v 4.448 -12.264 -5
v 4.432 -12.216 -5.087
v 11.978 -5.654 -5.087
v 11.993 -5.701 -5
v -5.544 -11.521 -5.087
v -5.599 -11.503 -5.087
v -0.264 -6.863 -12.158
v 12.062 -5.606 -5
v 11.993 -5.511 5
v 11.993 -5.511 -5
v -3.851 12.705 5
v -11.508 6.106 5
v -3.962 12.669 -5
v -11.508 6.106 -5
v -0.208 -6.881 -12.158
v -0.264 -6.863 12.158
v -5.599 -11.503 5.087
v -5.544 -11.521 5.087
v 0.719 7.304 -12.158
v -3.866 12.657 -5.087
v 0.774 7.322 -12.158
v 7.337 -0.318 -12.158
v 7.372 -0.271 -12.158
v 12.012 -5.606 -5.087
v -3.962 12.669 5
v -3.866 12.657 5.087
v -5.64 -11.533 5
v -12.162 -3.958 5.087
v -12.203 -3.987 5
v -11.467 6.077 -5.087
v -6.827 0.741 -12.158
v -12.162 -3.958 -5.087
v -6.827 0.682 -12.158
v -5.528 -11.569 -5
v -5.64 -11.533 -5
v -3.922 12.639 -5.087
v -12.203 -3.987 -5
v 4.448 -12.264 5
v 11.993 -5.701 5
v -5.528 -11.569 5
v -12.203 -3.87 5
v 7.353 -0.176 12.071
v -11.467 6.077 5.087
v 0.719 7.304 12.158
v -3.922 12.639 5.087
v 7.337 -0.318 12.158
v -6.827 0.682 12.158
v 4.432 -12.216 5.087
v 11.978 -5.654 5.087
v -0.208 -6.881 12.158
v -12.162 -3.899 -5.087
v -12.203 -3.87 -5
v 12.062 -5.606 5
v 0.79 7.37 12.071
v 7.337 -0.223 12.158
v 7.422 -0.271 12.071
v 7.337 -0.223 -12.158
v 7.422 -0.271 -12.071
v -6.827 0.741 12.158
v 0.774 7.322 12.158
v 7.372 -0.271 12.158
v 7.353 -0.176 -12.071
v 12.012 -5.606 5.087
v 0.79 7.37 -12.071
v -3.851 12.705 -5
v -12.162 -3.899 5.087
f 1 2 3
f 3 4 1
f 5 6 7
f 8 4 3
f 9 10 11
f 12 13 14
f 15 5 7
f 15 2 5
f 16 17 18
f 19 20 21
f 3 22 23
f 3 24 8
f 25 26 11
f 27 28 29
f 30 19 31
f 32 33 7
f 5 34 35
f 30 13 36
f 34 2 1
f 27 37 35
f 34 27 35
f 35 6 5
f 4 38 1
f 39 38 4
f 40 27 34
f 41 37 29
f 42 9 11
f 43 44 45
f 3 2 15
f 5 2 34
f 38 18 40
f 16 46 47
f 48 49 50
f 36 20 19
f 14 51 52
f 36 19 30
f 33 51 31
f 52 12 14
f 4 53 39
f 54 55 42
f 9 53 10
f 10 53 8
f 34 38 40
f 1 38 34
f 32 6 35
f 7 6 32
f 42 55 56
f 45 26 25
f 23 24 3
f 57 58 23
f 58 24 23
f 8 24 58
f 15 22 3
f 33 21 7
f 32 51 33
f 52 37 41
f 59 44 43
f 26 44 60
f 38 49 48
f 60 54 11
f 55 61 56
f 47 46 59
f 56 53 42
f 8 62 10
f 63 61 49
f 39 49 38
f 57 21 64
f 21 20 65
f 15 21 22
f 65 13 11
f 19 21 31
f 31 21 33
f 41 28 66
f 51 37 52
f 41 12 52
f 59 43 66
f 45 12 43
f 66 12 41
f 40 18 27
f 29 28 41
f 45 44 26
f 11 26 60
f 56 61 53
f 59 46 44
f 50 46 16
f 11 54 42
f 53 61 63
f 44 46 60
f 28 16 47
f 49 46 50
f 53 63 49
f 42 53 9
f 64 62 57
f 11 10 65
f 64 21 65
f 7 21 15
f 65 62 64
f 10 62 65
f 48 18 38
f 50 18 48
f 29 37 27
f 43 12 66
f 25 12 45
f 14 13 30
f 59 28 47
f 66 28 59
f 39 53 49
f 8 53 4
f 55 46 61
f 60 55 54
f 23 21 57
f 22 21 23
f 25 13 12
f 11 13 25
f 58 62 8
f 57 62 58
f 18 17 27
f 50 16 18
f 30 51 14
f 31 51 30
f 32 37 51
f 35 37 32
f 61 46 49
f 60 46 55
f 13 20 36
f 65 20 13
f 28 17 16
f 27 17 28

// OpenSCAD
// Auto-generated OpenSCAD file

    inner_points = 10*[[-0.022364928152955727, -0.6833428365326427, -1.2071067811865261], [0.7321659228464581, -0.027078259635412338, -1.2071067811864415], [-0.6786295050501859, 0.07118801446677113, -1.2071067811866534], [0.07590134594922775, 0.7274525913640015, -1.2071067811865688], [-0.022364928153311443, -0.6833428365325447, 1.2071067811865688], [0.7321659228461023, -0.027078259635314305, 1.2071067811866534], [-0.6786295050505418, 0.07118801446686916, 1.2071067811864415], [0.07590134594887203, 0.7274525913640996, 1.2071067811865261], [0.4416842044234921, -1.2168767178887558, -0.4999999999998886], [1.1962150554229058, -0.5606121409915255, -0.49999999999980405], [-1.142678637626842, 0.6047218958229418, -0.500000000000196], [-0.38814778662742855, 1.2609864727201718, -0.5000000000001115], [0.4416842044233449, -1.2168767178887152, 0.5000000000001115], [1.1962150554227584, -0.5606121409914849, 0.500000000000196], [-1.1426786376269895, 0.6047218958229823, 0.49999999999980405], [-0.38814778662757576, 1.2609864727202125, 0.4999999999998886], [-0.5558988095092017, -1.147391969109166, -0.5000000000000384], [-1.212163386406432, -0.3928611181097522, -0.5000000000001656], [-0.5558988095093491, -1.1473919691091254, 0.49999999999996164], [-1.2121633864065793, -0.39286111810971164, 0.4999999999998343]];

    outer_points = 10*[[1.1133863022512445, 0.6849025719557661, 0.4983835772517235], [1.3481473042168641, 0.17580803999924655, -0.3296925240143803], [0.9745294777189386, -0.17580803999924655, 0.9881753950159978], [1.2092904796845583, -0.6849025719557661, 0.160099293749894], [-1.2092904796845583, 0.6849025719557661, -0.160099293749894], [-0.9745294777189386, 0.17580803999924655, -0.9881753950159978], [-1.3481473042168641, -0.17580803999924655, 0.3296925240143803], [-1.1133863022512445, -0.6849025719557661, -0.4983835772517235], [0.5312766255676197, 1.2935168823083785, -0.04081670608026772], [0.7660376275332393, 0.784422350351859, -0.8688928073463715], [0.19604659655366607, -0.784422350351859, 1.1416453431056148], [0.43080759851928574, -1.2935168823083785, 0.3135692418395109], [-0.43080759851928574, 1.2935168823083785, -0.3135692418395109], [-0.19604659655366607, 0.784422350351859, -1.1416453431056148], [-0.7660376275332393, -0.784422350351859, 0.8688928073463715], [-0.5312766255676197, -1.2935168823083785, 0.04081670608026772], [0.2670889268787577, 1.0448867677672125, 0.8910566361743166], [0.12823210234645194, 0.18417615581219987, 1.3808484539385908], [-0.6949952972081477, 1.0448867677672125, 0.6183041004150733], [-0.8338521217404535, 0.18417615581219987, 1.1080959181793475]];

    // Convex hull for inner set (I)
    module inner_hull() {
        hull() {
            for (p = inner_points) {
                translate(p) sphere(r=0.1);
            }
        }
    }

    // Convex hull for outer set (O) minus inner hull (O \ I)
    module outer_minus_inner() {
        difference() {
            hull() {
                for (p = outer_points) {
                    translate(p) sphere(r=0.1);
                }
            }
            inner_hull(); // Subtract inner hull
        }
    }

    // Convex hull for outer set (O) minus all translated inner hulls
    module outer_minus_AllTranslationInner() {
        difference() {
            hull() {
                for (p = outer_points) {
                    translate(p) sphere(r=0.1);
                }
            }
            hull() {
                translate([0,0,50]) inner_hull();
                translate([0,0,-50]) inner_hull();
            }; // Subtract translated inner hulls
        }
    }

    // Difference between outer_minus_inner and outer_minus_AllTranslationInner
    module outer_minus_inner_diff() {
        difference() {
            // Outer minus inner
            difference() {
                hull() {
                    for (p = outer_points) {
                        translate(p) sphere(r=0.1);
                    }
                }
                inner_hull();
            }

            // Subtract Outer minus AllTranslationInner
            difference() {
                hull() {
                    for (p = outer_points) {
                        translate(p) sphere(r=0.1);
                    }
                }
                hull() {
                    translate([0,0,50]) inner_hull();
                    translate([0,0,-50]) inner_hull();
                };
            }
        }
    }

    // Rendering all with colors applied
    color([1, 0, 0, 0.5]) inner_hull(); // Transparent red
    
